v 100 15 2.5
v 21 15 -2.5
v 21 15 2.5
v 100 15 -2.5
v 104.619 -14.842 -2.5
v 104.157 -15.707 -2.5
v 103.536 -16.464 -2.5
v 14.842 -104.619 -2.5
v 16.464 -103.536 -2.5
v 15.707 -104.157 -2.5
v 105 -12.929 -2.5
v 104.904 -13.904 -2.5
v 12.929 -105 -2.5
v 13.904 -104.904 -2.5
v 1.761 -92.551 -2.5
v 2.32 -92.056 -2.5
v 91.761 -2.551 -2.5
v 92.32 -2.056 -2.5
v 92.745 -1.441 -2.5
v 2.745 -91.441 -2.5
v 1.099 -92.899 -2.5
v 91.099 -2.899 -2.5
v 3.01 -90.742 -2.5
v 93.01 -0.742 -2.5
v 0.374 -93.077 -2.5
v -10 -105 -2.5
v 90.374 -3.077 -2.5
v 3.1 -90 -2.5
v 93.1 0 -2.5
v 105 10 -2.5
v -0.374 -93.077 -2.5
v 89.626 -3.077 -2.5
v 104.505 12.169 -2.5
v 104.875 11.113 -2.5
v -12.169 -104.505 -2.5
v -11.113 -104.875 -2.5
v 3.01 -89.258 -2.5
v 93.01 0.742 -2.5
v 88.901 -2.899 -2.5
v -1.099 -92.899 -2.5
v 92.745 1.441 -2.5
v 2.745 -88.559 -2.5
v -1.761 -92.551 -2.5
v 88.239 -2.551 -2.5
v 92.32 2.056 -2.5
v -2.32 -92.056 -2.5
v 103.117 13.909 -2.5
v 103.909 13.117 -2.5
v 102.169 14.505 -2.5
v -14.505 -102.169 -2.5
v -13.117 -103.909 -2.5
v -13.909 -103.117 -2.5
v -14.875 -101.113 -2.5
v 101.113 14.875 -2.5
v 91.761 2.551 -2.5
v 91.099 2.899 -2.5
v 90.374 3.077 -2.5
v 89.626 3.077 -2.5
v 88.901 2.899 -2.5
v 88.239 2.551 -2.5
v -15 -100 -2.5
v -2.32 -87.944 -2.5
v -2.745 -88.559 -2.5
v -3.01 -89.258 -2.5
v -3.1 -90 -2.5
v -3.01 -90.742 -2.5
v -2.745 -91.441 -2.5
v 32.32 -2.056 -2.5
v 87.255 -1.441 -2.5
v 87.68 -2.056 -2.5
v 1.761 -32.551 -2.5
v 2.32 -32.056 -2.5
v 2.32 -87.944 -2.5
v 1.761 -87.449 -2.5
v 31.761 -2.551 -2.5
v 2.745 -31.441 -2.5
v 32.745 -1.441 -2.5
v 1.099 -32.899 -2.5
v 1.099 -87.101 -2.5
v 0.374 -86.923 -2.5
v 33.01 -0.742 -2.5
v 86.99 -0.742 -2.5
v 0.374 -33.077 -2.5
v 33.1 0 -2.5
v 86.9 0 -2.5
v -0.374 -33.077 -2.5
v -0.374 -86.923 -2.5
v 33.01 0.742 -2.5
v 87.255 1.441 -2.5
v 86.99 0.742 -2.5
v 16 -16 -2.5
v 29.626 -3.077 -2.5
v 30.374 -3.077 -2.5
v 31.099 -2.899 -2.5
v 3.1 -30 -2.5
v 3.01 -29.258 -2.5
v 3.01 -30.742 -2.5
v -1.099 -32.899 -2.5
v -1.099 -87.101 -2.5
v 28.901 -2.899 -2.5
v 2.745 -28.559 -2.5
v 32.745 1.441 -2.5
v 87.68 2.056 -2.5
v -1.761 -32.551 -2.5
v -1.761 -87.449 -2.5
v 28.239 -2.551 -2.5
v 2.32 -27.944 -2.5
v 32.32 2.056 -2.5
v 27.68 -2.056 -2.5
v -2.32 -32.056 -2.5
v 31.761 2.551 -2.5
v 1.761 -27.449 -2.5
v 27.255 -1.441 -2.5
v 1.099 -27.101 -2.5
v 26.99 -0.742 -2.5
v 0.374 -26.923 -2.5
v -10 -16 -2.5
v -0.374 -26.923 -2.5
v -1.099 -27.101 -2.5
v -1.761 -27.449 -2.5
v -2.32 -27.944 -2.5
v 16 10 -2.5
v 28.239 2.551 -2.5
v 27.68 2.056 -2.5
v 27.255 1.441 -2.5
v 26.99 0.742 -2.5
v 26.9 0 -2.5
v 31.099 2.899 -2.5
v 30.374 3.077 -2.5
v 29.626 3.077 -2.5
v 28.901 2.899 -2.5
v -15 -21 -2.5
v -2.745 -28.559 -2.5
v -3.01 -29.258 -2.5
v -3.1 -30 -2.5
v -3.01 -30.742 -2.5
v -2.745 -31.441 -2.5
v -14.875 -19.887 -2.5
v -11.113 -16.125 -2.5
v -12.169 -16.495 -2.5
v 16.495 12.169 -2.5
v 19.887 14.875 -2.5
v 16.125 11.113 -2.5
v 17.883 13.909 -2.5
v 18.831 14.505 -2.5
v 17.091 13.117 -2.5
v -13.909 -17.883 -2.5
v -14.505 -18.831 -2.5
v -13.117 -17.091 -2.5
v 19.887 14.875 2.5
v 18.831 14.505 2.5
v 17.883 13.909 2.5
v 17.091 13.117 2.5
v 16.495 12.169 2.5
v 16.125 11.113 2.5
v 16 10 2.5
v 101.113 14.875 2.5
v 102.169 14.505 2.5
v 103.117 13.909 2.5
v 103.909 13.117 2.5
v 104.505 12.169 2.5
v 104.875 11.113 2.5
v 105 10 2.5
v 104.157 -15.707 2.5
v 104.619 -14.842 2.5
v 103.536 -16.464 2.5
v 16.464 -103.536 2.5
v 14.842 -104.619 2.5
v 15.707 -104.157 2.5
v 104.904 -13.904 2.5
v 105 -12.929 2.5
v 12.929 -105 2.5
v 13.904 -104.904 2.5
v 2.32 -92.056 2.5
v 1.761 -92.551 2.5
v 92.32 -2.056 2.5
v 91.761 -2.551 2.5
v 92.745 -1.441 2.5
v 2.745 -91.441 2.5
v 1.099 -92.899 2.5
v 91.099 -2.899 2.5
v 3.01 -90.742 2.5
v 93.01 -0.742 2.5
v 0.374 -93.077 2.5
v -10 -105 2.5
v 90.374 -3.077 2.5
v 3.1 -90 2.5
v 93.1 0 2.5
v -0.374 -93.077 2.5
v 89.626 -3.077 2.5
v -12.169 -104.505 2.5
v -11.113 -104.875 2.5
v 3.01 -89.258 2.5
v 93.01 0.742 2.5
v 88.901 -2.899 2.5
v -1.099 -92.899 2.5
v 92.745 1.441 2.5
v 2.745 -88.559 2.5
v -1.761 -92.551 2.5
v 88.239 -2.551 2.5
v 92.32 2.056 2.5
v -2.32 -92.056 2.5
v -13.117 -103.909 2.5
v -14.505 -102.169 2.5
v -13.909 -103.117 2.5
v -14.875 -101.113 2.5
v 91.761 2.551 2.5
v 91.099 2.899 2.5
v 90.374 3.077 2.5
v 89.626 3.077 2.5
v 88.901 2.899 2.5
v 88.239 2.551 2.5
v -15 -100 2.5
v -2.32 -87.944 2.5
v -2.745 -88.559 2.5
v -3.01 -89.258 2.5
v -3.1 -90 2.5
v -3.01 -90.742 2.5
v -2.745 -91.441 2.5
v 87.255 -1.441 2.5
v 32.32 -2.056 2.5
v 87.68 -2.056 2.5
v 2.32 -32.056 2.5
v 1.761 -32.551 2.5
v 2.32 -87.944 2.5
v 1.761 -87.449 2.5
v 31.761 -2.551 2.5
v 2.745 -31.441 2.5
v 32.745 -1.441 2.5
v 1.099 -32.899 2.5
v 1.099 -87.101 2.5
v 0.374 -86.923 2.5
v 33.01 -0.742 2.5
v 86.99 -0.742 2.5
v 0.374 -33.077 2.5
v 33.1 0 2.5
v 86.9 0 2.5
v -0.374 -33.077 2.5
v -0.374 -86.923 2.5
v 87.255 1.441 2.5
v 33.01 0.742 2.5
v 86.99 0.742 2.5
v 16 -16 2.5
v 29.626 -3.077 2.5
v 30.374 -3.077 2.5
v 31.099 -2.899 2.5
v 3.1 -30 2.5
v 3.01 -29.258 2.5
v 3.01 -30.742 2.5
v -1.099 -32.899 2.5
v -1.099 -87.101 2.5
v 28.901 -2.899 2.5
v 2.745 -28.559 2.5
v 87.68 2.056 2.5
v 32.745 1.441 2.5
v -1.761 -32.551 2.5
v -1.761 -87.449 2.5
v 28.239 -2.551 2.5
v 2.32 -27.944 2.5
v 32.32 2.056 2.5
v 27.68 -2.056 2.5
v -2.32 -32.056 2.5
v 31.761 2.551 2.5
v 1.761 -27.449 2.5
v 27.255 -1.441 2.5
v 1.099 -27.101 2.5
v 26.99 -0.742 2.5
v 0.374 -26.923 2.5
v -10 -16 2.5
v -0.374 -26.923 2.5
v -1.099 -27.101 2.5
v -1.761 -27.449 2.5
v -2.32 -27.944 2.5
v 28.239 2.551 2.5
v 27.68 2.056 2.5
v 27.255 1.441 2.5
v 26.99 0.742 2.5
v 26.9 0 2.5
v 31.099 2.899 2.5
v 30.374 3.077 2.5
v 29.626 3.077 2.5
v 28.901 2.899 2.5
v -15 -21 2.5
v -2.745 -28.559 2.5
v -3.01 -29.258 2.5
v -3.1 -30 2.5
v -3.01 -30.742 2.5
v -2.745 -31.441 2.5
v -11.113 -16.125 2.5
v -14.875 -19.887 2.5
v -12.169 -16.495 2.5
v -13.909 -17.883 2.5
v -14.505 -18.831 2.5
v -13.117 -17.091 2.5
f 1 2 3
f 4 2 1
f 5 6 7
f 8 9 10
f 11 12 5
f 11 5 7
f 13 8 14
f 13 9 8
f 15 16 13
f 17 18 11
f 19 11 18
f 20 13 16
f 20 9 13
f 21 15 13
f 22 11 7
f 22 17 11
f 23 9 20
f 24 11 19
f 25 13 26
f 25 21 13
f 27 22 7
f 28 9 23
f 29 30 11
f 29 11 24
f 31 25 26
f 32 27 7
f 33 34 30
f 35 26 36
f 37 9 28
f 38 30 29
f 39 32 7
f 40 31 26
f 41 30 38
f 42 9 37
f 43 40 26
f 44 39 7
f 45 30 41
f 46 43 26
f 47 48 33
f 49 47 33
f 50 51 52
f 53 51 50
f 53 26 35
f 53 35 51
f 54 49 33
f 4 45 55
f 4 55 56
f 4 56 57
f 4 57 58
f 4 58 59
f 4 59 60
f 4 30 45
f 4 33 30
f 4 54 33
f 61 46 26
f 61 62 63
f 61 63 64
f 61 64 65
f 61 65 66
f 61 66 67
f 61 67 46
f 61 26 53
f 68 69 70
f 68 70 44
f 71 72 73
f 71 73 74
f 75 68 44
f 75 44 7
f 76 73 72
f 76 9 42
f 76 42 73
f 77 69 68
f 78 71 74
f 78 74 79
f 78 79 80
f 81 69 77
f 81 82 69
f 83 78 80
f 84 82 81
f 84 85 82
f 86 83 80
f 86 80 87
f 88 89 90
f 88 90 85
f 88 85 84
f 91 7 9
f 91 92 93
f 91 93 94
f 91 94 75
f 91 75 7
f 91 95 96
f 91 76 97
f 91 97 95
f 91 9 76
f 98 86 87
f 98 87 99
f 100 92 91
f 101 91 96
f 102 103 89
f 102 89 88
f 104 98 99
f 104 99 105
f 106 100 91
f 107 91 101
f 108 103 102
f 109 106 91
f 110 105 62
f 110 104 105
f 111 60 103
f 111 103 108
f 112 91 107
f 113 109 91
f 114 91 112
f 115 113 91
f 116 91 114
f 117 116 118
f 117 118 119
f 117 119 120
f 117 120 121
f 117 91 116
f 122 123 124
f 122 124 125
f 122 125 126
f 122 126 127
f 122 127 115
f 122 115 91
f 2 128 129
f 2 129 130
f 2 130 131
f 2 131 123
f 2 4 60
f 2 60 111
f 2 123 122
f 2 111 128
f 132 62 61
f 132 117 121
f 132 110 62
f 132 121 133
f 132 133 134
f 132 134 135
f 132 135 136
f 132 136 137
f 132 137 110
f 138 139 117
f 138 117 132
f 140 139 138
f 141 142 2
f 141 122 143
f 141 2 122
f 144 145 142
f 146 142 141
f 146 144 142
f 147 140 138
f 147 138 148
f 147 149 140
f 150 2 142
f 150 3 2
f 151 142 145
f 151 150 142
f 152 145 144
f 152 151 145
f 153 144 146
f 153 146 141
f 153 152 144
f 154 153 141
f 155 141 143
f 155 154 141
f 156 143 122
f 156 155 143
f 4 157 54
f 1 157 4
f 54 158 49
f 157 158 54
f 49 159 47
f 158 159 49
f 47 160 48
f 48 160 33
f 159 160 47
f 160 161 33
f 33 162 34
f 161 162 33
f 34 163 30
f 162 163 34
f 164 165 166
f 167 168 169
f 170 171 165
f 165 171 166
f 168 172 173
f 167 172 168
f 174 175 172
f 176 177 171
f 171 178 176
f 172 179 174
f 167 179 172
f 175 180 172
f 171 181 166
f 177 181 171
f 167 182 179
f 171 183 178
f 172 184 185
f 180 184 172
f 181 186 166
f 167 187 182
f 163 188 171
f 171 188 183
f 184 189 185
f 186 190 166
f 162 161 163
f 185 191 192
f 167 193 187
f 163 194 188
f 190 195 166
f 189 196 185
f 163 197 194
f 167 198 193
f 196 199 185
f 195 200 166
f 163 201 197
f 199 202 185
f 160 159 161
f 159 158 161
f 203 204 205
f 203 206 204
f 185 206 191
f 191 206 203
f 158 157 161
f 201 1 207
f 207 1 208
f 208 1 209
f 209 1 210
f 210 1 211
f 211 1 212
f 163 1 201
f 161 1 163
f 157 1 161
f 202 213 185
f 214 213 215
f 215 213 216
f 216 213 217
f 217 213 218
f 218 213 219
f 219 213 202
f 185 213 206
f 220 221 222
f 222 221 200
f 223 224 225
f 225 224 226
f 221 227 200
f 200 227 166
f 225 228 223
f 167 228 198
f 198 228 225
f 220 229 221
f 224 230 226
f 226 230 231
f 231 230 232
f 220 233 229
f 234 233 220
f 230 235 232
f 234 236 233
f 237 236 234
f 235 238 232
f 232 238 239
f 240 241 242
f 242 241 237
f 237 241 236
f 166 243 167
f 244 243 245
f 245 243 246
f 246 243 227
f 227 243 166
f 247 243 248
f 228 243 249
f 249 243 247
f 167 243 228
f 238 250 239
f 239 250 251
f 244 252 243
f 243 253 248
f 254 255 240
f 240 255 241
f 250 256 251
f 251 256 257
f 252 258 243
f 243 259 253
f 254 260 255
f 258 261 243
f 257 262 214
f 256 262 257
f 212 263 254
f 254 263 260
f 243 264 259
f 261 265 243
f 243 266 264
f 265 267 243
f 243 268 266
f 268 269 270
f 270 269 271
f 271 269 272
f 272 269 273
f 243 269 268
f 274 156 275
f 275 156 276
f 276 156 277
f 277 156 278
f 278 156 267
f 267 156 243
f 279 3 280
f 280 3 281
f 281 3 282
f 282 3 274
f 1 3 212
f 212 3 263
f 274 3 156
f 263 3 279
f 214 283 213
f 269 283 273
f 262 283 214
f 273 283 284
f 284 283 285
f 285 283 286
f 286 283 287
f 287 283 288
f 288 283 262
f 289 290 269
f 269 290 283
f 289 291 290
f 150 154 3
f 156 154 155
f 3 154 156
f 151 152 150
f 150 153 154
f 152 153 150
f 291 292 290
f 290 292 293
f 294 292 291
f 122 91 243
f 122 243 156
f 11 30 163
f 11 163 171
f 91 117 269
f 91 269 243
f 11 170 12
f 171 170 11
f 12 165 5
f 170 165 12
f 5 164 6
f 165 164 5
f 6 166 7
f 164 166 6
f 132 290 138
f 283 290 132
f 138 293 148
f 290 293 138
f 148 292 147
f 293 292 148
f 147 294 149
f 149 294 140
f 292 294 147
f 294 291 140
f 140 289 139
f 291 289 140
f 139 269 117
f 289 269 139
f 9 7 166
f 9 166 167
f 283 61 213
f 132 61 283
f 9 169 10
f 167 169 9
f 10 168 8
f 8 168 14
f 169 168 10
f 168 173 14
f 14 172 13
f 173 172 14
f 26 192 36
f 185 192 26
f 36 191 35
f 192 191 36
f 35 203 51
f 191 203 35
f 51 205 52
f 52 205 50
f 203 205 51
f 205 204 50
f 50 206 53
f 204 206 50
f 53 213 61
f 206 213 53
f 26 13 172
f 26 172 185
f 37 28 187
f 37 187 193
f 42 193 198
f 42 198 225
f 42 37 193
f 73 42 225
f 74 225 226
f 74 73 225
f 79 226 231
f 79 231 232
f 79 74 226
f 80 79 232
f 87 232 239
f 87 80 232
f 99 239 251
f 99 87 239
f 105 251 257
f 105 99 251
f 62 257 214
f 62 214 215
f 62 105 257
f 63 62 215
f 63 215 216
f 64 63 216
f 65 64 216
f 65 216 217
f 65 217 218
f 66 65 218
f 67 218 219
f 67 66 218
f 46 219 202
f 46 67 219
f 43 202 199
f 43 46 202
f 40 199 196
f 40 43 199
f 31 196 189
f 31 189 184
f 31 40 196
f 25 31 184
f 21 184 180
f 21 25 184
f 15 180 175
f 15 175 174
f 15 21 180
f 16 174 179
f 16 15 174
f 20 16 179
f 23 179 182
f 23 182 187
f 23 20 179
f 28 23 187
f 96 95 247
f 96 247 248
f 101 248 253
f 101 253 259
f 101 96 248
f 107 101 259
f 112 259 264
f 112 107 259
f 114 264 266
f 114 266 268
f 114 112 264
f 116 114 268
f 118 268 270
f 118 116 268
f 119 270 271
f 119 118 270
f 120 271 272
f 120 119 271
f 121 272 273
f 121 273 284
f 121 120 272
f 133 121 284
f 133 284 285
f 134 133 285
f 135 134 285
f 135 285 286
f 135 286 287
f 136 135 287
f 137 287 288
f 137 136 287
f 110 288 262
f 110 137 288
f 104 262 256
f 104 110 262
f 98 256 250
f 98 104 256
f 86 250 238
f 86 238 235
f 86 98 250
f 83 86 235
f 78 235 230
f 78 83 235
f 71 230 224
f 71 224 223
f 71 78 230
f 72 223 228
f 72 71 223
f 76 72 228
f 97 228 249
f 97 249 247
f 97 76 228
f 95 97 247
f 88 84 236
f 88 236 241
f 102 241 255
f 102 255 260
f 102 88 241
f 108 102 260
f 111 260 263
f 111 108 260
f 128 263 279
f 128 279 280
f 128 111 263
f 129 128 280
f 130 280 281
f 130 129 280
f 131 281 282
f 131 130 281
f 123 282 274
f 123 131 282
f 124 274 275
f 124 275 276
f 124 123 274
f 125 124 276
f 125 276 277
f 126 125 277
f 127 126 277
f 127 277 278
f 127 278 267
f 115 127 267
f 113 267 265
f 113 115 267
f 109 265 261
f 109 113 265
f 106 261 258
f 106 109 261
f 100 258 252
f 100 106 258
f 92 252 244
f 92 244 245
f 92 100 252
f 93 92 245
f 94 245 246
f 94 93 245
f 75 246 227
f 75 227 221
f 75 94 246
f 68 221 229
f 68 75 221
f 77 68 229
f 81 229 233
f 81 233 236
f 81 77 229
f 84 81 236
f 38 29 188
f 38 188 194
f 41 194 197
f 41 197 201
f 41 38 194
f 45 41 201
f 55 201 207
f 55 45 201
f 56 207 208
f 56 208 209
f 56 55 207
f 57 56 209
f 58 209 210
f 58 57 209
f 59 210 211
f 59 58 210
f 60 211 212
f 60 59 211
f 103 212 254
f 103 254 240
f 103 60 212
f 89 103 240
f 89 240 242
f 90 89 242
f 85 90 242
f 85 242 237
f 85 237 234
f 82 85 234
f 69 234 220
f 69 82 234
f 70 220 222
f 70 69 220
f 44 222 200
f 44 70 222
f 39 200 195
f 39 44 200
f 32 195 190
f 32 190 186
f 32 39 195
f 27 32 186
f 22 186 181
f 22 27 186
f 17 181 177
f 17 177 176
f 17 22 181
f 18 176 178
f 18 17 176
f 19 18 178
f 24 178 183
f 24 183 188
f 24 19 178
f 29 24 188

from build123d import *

# Parameters (mm, degrees)
SKETCH_R  = 3.1
PAD_DEPTH = 2.5
FILLET_R  = 5


with BuildPart() as part:
    # Sketch → Pad (new body, symmetric)
    with BuildSketch(Plane.XY):
        Polygon((16, 15), (105, 15), (105, -15), (15, -105), (-15, -105), (-15, -16), (16, -16), align=None)
        with Locations((30, 0)):
            Circle(SKETCH_R, mode=Mode.SUBTRACT)
        with Locations((90, 0)):
            Circle(SKETCH_R, mode=Mode.SUBTRACT)
        with Locations((0, -30)):
            Circle(SKETCH_R, mode=Mode.SUBTRACT)
        with Locations((0, -90)):
            Circle(SKETCH_R, mode=Mode.SUBTRACT)
    extrude(amount=PAD_DEPTH, both=True)

    # Fillet
    fillet_edges = [part.edges().sort_by_distance(p)[0] for p in [
        (-15, -105, 0),
        (105, 15, 0),
        (15, -105, 0),
        (105, -15, 0),
        (16, 15, 0),
        (-15, -16, 0),
    ]]
    fillet(fillet_edges, radius=FILLET_R)


solid = part.part
